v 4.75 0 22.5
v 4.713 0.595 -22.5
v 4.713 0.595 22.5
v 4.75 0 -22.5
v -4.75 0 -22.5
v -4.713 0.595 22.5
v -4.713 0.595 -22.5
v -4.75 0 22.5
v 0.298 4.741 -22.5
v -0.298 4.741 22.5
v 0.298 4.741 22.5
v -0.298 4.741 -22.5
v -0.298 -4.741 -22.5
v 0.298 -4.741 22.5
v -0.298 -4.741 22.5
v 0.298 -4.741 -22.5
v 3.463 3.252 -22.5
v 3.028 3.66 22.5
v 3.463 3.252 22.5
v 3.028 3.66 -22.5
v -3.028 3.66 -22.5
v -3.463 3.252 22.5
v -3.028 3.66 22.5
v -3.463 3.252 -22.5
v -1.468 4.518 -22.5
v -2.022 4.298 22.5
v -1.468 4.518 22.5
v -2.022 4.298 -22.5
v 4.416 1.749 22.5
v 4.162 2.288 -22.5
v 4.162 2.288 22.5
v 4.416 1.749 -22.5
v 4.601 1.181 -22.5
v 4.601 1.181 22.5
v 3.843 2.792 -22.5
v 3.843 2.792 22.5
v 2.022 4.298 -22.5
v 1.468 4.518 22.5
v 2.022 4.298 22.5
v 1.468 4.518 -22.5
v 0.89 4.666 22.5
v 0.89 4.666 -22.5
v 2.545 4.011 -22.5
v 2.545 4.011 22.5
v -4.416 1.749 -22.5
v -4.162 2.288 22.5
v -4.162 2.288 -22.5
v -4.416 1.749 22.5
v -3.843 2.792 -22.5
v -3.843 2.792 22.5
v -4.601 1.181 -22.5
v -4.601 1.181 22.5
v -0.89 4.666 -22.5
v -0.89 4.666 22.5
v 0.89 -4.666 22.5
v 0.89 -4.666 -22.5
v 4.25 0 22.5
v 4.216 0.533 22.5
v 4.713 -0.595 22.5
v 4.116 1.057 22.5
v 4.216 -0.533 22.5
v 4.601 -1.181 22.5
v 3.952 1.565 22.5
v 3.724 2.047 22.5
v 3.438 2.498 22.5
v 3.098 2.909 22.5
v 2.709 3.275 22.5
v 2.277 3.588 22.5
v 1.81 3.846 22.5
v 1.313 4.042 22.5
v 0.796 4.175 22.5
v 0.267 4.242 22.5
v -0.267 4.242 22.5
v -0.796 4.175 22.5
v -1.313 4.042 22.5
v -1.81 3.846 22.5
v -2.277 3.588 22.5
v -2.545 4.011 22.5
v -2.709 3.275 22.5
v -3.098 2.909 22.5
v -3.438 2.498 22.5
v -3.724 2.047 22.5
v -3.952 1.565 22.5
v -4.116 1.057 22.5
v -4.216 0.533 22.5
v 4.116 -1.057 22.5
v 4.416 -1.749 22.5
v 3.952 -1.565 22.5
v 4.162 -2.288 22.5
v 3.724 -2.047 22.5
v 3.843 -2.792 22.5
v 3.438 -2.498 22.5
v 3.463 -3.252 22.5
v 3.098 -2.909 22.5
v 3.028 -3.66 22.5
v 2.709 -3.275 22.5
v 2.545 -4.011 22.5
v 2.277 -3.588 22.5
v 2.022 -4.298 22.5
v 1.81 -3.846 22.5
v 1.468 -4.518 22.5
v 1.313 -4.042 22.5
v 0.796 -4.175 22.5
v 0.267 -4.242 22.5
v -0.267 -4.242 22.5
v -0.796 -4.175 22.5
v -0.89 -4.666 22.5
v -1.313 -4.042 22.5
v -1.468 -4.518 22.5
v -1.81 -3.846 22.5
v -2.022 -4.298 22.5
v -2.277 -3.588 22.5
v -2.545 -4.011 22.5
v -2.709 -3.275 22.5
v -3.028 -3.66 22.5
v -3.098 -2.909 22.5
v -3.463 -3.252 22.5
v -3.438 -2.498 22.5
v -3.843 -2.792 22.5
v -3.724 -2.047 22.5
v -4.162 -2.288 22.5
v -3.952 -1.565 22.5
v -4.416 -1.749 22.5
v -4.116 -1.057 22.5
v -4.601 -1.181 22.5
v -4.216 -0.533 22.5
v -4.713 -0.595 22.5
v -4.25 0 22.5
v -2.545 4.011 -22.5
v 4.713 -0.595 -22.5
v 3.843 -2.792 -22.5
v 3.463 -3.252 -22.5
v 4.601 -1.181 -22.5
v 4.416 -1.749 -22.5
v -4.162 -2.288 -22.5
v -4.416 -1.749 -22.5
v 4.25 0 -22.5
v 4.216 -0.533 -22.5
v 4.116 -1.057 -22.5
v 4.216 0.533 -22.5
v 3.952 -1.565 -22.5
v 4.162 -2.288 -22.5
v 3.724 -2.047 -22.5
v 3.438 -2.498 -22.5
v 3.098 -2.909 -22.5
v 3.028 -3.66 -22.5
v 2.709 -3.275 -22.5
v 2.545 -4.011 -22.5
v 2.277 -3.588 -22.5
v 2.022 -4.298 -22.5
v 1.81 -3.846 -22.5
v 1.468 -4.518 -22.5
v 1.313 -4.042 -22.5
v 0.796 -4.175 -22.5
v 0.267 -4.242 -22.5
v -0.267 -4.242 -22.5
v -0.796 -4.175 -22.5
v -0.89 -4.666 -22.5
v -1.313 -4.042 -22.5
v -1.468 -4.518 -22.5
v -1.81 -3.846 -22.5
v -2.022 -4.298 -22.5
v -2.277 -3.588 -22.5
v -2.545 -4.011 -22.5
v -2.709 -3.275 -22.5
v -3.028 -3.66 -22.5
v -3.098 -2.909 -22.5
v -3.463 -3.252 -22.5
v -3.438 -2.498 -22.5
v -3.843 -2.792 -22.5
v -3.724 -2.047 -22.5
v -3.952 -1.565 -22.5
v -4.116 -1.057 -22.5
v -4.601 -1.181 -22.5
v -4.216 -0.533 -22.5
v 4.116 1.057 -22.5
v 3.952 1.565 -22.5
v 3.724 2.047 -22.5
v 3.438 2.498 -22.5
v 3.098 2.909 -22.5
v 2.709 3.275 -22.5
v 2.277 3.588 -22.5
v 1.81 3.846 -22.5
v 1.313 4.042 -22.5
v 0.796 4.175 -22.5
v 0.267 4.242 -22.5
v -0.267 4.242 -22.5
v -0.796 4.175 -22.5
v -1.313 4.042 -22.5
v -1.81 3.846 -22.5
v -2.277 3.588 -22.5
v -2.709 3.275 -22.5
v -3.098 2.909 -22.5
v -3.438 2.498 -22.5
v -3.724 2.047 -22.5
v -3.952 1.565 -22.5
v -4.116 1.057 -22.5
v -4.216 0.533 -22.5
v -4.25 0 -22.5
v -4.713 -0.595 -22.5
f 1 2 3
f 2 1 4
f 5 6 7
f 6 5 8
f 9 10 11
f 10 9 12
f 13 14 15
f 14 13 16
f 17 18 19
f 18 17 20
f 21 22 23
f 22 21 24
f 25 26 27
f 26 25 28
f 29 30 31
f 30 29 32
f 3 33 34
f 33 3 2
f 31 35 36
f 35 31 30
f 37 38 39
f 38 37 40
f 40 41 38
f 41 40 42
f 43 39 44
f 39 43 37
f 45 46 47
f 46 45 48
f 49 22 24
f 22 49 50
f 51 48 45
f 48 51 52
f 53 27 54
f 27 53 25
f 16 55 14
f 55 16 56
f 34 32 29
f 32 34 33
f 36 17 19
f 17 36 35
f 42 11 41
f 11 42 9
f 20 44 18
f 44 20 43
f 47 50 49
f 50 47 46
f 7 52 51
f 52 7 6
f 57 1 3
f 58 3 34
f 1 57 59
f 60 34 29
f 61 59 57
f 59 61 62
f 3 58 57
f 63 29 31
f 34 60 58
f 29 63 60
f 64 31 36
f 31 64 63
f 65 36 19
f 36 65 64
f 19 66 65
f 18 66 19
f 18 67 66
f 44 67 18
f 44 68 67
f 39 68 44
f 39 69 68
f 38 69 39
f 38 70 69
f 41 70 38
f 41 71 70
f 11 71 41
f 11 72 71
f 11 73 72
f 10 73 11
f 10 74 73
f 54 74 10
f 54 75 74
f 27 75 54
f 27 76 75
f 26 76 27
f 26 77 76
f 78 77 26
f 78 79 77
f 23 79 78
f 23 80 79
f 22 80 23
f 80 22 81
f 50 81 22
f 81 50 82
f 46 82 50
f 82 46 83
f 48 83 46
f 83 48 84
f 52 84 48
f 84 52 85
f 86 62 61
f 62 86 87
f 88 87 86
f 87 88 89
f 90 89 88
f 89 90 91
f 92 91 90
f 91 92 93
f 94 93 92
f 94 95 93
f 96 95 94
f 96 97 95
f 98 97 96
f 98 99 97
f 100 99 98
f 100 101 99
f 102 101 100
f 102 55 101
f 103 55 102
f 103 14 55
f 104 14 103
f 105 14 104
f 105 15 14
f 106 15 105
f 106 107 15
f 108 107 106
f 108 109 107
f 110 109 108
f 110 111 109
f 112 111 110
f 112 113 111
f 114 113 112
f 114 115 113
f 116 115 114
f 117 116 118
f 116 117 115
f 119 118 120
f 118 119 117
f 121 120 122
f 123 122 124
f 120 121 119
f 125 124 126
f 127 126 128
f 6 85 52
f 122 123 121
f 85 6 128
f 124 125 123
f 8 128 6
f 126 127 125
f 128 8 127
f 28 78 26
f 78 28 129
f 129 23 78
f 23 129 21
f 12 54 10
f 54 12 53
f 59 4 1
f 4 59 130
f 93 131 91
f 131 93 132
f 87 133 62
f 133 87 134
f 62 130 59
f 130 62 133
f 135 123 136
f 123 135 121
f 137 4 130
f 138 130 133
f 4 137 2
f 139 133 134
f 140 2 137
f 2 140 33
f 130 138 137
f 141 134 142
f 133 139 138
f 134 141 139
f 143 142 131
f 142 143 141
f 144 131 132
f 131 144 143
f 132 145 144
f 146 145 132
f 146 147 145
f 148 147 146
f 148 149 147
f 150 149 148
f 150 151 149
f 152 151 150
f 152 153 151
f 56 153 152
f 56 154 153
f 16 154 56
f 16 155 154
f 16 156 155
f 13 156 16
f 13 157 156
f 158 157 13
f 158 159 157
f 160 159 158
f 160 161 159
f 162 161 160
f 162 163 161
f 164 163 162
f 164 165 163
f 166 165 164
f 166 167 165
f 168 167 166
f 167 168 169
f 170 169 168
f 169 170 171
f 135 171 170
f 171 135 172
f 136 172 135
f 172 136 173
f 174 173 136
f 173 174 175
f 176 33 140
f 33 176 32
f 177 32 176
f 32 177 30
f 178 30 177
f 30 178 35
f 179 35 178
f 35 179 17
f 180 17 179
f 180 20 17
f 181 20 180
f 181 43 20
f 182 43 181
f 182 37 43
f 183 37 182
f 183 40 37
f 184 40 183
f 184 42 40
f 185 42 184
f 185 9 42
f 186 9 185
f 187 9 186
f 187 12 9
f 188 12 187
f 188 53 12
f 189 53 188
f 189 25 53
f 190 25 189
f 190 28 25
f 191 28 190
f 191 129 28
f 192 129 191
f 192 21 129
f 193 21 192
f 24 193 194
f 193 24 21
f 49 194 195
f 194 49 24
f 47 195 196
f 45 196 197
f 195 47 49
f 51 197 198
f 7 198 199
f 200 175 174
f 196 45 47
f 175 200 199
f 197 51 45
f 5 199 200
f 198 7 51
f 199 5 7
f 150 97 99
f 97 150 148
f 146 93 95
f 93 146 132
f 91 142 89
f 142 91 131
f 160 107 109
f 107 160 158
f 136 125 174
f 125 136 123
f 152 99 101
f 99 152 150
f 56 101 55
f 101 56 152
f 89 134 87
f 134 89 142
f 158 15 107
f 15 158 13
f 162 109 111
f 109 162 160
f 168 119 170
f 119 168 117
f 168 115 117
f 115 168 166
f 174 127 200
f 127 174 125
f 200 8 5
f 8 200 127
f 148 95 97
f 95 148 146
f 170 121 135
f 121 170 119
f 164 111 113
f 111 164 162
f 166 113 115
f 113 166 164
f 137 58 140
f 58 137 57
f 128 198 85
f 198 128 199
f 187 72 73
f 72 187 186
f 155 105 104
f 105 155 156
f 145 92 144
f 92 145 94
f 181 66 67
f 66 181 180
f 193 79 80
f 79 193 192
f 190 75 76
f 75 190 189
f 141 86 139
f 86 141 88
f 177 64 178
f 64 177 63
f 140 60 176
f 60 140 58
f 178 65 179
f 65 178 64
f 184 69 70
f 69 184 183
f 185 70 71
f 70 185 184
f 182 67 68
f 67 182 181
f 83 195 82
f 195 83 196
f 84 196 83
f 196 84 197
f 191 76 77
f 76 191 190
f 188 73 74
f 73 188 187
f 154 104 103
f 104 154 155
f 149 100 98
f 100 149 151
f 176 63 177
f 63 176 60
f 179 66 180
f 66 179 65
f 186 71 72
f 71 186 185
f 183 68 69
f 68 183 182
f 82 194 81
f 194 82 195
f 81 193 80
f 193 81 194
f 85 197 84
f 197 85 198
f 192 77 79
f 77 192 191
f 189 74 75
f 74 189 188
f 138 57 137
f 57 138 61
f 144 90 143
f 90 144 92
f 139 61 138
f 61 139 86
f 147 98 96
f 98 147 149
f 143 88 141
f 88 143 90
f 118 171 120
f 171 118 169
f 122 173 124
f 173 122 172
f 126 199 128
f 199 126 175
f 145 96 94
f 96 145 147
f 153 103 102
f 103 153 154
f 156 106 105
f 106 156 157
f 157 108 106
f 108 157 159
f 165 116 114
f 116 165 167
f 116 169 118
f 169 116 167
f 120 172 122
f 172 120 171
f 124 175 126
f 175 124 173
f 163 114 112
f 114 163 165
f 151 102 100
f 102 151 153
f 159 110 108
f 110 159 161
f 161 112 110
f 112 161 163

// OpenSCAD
$fn = 50;


difference() {
	union() {
		translate(v = [0, 0, -22.5000000000]) {
			cylinder(h = 45, r = 4.7500000000);
		}
	}
	union() {
		translate(v = [0, 0, -100.0000000000]) {
			cylinder(h = 200, r = 4.2500000000);
		}
	}
}
